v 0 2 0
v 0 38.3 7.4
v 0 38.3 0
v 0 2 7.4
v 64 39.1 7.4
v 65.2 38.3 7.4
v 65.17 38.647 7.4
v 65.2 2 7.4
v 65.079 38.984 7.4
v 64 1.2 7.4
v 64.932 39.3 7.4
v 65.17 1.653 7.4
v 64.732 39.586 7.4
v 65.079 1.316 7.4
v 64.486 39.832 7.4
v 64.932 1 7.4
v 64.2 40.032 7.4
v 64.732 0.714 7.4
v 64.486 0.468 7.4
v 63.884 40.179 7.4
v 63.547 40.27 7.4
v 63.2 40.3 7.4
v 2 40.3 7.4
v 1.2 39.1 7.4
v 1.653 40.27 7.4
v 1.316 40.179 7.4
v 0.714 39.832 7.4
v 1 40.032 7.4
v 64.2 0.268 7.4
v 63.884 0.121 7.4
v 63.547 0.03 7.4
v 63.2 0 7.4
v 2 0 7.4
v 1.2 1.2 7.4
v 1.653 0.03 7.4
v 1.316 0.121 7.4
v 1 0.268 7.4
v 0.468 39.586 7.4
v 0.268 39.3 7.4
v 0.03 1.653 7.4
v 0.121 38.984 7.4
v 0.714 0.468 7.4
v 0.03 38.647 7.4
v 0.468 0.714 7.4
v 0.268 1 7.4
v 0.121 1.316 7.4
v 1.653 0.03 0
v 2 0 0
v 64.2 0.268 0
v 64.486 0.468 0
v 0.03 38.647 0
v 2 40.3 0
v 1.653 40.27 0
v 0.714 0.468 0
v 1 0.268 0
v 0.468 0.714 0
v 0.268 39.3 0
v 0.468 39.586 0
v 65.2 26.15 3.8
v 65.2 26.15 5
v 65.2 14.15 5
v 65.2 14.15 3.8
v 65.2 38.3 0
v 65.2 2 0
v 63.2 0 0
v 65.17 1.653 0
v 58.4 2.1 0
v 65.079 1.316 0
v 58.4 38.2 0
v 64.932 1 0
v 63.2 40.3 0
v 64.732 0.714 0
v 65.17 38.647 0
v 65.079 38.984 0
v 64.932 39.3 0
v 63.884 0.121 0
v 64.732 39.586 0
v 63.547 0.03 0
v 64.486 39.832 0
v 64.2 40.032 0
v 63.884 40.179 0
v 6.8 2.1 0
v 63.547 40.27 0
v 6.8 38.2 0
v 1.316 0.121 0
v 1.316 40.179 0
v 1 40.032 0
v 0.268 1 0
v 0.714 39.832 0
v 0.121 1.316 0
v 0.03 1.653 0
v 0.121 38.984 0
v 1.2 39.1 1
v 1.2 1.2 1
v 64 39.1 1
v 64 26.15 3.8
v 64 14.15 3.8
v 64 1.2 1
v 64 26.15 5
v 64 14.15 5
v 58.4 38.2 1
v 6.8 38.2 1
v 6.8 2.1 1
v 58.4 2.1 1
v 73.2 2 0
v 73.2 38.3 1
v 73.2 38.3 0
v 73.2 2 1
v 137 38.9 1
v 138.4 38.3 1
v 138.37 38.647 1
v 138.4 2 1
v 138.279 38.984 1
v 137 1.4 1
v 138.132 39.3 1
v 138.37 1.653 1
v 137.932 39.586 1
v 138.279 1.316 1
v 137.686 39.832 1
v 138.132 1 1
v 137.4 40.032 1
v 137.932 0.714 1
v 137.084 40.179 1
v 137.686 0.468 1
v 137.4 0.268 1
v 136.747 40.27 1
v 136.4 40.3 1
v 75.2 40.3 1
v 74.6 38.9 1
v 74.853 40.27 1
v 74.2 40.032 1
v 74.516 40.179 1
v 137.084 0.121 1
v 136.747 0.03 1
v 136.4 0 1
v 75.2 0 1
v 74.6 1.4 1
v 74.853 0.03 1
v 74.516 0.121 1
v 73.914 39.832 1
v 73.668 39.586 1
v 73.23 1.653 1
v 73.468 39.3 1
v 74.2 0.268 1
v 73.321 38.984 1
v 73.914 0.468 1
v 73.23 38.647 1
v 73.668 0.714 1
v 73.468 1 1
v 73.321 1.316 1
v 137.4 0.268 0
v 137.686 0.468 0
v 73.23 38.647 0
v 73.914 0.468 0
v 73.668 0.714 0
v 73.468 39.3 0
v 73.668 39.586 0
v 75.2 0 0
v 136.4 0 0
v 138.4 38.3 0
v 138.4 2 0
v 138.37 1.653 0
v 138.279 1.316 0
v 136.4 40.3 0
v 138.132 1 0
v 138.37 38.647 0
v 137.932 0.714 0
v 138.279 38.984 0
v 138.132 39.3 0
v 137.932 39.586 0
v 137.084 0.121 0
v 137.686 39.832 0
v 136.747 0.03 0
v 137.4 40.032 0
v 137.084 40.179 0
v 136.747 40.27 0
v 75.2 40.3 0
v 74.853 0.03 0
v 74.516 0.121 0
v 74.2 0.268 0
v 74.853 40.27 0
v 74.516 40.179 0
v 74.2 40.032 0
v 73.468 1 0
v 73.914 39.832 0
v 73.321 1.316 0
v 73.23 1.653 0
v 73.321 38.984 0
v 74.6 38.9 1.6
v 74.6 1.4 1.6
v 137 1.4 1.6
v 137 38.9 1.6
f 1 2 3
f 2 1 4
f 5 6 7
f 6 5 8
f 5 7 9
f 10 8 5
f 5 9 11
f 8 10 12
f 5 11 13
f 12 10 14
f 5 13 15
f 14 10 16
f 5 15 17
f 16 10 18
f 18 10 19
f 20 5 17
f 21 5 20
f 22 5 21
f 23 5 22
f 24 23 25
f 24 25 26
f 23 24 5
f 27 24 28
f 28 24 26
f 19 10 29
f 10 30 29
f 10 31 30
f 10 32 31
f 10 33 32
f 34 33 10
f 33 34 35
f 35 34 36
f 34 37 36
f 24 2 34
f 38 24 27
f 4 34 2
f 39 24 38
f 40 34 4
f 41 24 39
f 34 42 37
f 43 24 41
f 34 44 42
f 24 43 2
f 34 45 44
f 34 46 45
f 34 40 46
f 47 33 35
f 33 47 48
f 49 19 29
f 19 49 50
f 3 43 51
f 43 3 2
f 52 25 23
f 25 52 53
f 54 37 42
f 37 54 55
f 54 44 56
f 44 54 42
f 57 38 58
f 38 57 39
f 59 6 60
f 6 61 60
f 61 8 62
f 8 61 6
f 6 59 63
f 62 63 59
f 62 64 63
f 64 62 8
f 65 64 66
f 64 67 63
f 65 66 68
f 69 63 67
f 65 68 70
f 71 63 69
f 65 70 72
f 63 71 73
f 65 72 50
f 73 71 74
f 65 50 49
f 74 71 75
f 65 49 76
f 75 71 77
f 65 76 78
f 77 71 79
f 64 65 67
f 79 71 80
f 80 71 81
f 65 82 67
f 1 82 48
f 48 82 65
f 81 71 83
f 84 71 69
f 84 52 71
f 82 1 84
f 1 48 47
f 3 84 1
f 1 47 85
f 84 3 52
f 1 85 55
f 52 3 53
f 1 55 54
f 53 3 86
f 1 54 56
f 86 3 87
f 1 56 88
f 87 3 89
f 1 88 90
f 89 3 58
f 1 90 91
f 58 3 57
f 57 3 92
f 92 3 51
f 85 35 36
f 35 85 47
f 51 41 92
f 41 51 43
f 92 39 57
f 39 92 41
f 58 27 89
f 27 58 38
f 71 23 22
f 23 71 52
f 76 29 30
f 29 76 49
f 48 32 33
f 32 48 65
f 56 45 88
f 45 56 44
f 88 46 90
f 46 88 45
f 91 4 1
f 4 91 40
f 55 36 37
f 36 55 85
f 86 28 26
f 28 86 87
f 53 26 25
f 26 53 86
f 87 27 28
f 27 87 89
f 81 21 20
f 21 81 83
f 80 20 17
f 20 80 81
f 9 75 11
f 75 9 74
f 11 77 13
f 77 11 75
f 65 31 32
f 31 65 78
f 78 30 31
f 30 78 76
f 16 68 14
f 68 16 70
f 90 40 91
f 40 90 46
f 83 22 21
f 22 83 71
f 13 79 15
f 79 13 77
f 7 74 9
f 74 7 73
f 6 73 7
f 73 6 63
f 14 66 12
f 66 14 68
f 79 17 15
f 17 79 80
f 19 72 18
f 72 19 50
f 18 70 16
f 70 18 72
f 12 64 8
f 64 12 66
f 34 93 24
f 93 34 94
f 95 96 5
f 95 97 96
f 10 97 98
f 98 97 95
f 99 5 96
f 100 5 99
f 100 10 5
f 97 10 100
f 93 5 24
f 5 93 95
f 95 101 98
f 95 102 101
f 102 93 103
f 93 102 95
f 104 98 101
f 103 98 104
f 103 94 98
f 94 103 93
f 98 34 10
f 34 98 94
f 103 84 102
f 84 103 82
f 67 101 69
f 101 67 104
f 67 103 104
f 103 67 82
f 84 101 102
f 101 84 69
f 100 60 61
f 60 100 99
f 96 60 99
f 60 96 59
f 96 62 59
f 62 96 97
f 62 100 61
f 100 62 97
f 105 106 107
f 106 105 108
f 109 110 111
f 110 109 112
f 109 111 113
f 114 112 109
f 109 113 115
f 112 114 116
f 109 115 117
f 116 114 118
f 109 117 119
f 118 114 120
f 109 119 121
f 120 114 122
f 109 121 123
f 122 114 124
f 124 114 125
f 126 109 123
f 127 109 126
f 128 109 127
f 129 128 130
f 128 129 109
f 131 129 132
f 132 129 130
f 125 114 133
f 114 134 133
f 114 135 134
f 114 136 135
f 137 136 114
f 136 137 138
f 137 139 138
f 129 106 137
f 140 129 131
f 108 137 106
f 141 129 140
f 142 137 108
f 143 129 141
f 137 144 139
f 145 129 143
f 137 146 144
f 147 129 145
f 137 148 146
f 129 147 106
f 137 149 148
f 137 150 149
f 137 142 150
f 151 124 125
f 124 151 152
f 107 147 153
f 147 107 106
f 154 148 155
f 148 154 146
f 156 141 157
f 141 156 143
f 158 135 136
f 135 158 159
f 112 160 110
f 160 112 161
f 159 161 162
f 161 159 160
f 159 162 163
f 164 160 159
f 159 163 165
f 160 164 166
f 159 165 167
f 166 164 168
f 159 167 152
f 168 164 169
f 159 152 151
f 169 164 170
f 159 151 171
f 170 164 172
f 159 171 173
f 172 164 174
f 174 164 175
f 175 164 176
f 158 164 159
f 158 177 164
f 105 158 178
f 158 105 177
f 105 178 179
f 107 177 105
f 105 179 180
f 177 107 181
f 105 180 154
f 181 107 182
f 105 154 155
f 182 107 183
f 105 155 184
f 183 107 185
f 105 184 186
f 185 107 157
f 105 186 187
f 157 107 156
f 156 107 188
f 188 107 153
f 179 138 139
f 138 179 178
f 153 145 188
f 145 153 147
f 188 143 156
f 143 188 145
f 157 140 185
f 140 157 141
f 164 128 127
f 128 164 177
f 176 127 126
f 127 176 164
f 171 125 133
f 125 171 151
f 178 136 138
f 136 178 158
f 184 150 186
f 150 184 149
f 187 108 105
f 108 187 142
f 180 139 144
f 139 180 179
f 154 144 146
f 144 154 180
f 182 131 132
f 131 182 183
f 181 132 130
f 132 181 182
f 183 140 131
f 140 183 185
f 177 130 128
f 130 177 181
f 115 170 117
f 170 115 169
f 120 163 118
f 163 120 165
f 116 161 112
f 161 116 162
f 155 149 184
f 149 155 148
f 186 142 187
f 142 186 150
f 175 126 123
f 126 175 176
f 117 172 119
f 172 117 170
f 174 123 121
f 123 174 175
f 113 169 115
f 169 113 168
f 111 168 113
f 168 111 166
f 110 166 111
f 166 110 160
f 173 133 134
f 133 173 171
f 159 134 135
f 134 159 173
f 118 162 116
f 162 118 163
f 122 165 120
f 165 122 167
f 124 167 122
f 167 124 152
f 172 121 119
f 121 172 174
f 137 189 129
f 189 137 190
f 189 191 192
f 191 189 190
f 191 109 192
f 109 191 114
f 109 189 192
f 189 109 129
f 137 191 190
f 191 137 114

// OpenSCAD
/*
Minimal landscape enclosure for 2.0" 240x320 TFT module
Based on supplied drawing:
- PCB: 37.10 ±0.20 x 62.00 ±0.20 mm
- PCB thickness: 1.20 mm
- Module max thickness: 6.00 mm
- BL/view area: 35.70 x 51.20 mm
- Cable slot: 12 x 1 mm

Orientation: landscape, so PCB becomes 62.0 W x 37.1 H.

Print note:
- For FDM 0.4 mm nozzle, 1.2 mm wall = 3 perimeters.
- Print front_shell face-down.
- First print a 1-layer test ring if your printer tolerance is unknown.
*/

$fn = 36;

// ---------- Parameters ----------
pcb_w_portrait = 37.10;
pcb_h_portrait = 62.00;
pcb_tol = 0.20;          // datasheet tolerance
fit_clearance = 0.30;    // clearance per side for 3D printing

// Landscape PCB maximum envelope
pcb_w = pcb_h_portrait + pcb_tol;   // 62.20
pcb_h = pcb_w_portrait + pcb_tol;   // 37.30

inner_w = pcb_w + fit_clearance * 2; // 62.80
inner_h = pcb_h + fit_clearance * 2; // 37.90

wall = 1.20;
front_lip = 1.00;
module_depth = 6.00;
depth_clearance = 0.40;

front_shell_z = front_lip + module_depth + depth_clearance; // 7.40
back_cover_z = 1.00;
total_z = front_shell_z + back_cover_z; // 8.40 if cover installed

outer_w = inner_w + wall * 2; // 65.20
outer_h = inner_h + wall * 2; // 40.30
corner_r = 2.00;

// Full BL/view window, rotated landscape.
// If you want only active AA area exposed, use 41.2 x 31.0 instead.
window_w = 51.20 + 0.40; // 51.60
window_h = 35.70 + 0.40; // 36.10

// Cable outlet on the connector side.
// Right side by default for landscape orientation; mirror model if your cable exits left.
cable_slot_len = 12.00;
cable_slot_h = 1.20;     // nominal 1 mm, enlarged to print reliably
cable_slot_z = 3.80;     // vertical position on side wall

// Optional cover fit
cover_inset_clearance = 0.20;
cover_inset_h = 0.60;

// ---------- Helpers ----------
module rounded_box(w, h, z, r) {
    hull() {
        translate([ r,  r, 0]) cylinder(h=z, r=r);
        translate([w-r, r, 0]) cylinder(h=z, r=r);
        translate([w-r, h-r, 0]) cylinder(h=z, r=r);
        translate([r, h-r, 0]) cylinder(h=z, r=r);
    }
}

// ---------- Parts ----------
module front_shell() {
    difference() {
        rounded_box(outer_w, outer_h, front_shell_z, corner_r);

        // Rear cavity for PCB/module, open from back
        translate([wall, wall, front_lip])
            cube([inner_w, inner_h, front_shell_z + 0.2], center=false);

        // Front display window
        translate([(outer_w-window_w)/2, (outer_h-window_h)/2, -0.1])
            cube([window_w, window_h, front_lip + 0.3], center=false);

        // Cable ribbon slot, 12 x ~1 mm, through right side wall
        translate([outer_w - wall - 0.2, (outer_h-cable_slot_len)/2, cable_slot_z])
            cube([wall + 0.6, cable_slot_len, cable_slot_h], center=false);
    }
}

module back_cover() {
    // Thin removable back cover with shallow inset lip
    union() {
        difference() {
            rounded_box(outer_w, outer_h, back_cover_z, corner_r);
            // tiny corner relief to avoid elephant-foot interference
        }
        translate([wall + cover_inset_clearance, wall + cover_inset_clearance, back_cover_z])
            cube([inner_w - cover_inset_clearance*2, inner_h - cover_inset_clearance*2, cover_inset_h], center=false);
    }
}

// Layout: front shell and cover side-by-side for export/printing.
// Export one module at a time if your slicer prefers separate STLs.
front_shell();

translate([outer_w + 8, 0, 0])
    back_cover();
